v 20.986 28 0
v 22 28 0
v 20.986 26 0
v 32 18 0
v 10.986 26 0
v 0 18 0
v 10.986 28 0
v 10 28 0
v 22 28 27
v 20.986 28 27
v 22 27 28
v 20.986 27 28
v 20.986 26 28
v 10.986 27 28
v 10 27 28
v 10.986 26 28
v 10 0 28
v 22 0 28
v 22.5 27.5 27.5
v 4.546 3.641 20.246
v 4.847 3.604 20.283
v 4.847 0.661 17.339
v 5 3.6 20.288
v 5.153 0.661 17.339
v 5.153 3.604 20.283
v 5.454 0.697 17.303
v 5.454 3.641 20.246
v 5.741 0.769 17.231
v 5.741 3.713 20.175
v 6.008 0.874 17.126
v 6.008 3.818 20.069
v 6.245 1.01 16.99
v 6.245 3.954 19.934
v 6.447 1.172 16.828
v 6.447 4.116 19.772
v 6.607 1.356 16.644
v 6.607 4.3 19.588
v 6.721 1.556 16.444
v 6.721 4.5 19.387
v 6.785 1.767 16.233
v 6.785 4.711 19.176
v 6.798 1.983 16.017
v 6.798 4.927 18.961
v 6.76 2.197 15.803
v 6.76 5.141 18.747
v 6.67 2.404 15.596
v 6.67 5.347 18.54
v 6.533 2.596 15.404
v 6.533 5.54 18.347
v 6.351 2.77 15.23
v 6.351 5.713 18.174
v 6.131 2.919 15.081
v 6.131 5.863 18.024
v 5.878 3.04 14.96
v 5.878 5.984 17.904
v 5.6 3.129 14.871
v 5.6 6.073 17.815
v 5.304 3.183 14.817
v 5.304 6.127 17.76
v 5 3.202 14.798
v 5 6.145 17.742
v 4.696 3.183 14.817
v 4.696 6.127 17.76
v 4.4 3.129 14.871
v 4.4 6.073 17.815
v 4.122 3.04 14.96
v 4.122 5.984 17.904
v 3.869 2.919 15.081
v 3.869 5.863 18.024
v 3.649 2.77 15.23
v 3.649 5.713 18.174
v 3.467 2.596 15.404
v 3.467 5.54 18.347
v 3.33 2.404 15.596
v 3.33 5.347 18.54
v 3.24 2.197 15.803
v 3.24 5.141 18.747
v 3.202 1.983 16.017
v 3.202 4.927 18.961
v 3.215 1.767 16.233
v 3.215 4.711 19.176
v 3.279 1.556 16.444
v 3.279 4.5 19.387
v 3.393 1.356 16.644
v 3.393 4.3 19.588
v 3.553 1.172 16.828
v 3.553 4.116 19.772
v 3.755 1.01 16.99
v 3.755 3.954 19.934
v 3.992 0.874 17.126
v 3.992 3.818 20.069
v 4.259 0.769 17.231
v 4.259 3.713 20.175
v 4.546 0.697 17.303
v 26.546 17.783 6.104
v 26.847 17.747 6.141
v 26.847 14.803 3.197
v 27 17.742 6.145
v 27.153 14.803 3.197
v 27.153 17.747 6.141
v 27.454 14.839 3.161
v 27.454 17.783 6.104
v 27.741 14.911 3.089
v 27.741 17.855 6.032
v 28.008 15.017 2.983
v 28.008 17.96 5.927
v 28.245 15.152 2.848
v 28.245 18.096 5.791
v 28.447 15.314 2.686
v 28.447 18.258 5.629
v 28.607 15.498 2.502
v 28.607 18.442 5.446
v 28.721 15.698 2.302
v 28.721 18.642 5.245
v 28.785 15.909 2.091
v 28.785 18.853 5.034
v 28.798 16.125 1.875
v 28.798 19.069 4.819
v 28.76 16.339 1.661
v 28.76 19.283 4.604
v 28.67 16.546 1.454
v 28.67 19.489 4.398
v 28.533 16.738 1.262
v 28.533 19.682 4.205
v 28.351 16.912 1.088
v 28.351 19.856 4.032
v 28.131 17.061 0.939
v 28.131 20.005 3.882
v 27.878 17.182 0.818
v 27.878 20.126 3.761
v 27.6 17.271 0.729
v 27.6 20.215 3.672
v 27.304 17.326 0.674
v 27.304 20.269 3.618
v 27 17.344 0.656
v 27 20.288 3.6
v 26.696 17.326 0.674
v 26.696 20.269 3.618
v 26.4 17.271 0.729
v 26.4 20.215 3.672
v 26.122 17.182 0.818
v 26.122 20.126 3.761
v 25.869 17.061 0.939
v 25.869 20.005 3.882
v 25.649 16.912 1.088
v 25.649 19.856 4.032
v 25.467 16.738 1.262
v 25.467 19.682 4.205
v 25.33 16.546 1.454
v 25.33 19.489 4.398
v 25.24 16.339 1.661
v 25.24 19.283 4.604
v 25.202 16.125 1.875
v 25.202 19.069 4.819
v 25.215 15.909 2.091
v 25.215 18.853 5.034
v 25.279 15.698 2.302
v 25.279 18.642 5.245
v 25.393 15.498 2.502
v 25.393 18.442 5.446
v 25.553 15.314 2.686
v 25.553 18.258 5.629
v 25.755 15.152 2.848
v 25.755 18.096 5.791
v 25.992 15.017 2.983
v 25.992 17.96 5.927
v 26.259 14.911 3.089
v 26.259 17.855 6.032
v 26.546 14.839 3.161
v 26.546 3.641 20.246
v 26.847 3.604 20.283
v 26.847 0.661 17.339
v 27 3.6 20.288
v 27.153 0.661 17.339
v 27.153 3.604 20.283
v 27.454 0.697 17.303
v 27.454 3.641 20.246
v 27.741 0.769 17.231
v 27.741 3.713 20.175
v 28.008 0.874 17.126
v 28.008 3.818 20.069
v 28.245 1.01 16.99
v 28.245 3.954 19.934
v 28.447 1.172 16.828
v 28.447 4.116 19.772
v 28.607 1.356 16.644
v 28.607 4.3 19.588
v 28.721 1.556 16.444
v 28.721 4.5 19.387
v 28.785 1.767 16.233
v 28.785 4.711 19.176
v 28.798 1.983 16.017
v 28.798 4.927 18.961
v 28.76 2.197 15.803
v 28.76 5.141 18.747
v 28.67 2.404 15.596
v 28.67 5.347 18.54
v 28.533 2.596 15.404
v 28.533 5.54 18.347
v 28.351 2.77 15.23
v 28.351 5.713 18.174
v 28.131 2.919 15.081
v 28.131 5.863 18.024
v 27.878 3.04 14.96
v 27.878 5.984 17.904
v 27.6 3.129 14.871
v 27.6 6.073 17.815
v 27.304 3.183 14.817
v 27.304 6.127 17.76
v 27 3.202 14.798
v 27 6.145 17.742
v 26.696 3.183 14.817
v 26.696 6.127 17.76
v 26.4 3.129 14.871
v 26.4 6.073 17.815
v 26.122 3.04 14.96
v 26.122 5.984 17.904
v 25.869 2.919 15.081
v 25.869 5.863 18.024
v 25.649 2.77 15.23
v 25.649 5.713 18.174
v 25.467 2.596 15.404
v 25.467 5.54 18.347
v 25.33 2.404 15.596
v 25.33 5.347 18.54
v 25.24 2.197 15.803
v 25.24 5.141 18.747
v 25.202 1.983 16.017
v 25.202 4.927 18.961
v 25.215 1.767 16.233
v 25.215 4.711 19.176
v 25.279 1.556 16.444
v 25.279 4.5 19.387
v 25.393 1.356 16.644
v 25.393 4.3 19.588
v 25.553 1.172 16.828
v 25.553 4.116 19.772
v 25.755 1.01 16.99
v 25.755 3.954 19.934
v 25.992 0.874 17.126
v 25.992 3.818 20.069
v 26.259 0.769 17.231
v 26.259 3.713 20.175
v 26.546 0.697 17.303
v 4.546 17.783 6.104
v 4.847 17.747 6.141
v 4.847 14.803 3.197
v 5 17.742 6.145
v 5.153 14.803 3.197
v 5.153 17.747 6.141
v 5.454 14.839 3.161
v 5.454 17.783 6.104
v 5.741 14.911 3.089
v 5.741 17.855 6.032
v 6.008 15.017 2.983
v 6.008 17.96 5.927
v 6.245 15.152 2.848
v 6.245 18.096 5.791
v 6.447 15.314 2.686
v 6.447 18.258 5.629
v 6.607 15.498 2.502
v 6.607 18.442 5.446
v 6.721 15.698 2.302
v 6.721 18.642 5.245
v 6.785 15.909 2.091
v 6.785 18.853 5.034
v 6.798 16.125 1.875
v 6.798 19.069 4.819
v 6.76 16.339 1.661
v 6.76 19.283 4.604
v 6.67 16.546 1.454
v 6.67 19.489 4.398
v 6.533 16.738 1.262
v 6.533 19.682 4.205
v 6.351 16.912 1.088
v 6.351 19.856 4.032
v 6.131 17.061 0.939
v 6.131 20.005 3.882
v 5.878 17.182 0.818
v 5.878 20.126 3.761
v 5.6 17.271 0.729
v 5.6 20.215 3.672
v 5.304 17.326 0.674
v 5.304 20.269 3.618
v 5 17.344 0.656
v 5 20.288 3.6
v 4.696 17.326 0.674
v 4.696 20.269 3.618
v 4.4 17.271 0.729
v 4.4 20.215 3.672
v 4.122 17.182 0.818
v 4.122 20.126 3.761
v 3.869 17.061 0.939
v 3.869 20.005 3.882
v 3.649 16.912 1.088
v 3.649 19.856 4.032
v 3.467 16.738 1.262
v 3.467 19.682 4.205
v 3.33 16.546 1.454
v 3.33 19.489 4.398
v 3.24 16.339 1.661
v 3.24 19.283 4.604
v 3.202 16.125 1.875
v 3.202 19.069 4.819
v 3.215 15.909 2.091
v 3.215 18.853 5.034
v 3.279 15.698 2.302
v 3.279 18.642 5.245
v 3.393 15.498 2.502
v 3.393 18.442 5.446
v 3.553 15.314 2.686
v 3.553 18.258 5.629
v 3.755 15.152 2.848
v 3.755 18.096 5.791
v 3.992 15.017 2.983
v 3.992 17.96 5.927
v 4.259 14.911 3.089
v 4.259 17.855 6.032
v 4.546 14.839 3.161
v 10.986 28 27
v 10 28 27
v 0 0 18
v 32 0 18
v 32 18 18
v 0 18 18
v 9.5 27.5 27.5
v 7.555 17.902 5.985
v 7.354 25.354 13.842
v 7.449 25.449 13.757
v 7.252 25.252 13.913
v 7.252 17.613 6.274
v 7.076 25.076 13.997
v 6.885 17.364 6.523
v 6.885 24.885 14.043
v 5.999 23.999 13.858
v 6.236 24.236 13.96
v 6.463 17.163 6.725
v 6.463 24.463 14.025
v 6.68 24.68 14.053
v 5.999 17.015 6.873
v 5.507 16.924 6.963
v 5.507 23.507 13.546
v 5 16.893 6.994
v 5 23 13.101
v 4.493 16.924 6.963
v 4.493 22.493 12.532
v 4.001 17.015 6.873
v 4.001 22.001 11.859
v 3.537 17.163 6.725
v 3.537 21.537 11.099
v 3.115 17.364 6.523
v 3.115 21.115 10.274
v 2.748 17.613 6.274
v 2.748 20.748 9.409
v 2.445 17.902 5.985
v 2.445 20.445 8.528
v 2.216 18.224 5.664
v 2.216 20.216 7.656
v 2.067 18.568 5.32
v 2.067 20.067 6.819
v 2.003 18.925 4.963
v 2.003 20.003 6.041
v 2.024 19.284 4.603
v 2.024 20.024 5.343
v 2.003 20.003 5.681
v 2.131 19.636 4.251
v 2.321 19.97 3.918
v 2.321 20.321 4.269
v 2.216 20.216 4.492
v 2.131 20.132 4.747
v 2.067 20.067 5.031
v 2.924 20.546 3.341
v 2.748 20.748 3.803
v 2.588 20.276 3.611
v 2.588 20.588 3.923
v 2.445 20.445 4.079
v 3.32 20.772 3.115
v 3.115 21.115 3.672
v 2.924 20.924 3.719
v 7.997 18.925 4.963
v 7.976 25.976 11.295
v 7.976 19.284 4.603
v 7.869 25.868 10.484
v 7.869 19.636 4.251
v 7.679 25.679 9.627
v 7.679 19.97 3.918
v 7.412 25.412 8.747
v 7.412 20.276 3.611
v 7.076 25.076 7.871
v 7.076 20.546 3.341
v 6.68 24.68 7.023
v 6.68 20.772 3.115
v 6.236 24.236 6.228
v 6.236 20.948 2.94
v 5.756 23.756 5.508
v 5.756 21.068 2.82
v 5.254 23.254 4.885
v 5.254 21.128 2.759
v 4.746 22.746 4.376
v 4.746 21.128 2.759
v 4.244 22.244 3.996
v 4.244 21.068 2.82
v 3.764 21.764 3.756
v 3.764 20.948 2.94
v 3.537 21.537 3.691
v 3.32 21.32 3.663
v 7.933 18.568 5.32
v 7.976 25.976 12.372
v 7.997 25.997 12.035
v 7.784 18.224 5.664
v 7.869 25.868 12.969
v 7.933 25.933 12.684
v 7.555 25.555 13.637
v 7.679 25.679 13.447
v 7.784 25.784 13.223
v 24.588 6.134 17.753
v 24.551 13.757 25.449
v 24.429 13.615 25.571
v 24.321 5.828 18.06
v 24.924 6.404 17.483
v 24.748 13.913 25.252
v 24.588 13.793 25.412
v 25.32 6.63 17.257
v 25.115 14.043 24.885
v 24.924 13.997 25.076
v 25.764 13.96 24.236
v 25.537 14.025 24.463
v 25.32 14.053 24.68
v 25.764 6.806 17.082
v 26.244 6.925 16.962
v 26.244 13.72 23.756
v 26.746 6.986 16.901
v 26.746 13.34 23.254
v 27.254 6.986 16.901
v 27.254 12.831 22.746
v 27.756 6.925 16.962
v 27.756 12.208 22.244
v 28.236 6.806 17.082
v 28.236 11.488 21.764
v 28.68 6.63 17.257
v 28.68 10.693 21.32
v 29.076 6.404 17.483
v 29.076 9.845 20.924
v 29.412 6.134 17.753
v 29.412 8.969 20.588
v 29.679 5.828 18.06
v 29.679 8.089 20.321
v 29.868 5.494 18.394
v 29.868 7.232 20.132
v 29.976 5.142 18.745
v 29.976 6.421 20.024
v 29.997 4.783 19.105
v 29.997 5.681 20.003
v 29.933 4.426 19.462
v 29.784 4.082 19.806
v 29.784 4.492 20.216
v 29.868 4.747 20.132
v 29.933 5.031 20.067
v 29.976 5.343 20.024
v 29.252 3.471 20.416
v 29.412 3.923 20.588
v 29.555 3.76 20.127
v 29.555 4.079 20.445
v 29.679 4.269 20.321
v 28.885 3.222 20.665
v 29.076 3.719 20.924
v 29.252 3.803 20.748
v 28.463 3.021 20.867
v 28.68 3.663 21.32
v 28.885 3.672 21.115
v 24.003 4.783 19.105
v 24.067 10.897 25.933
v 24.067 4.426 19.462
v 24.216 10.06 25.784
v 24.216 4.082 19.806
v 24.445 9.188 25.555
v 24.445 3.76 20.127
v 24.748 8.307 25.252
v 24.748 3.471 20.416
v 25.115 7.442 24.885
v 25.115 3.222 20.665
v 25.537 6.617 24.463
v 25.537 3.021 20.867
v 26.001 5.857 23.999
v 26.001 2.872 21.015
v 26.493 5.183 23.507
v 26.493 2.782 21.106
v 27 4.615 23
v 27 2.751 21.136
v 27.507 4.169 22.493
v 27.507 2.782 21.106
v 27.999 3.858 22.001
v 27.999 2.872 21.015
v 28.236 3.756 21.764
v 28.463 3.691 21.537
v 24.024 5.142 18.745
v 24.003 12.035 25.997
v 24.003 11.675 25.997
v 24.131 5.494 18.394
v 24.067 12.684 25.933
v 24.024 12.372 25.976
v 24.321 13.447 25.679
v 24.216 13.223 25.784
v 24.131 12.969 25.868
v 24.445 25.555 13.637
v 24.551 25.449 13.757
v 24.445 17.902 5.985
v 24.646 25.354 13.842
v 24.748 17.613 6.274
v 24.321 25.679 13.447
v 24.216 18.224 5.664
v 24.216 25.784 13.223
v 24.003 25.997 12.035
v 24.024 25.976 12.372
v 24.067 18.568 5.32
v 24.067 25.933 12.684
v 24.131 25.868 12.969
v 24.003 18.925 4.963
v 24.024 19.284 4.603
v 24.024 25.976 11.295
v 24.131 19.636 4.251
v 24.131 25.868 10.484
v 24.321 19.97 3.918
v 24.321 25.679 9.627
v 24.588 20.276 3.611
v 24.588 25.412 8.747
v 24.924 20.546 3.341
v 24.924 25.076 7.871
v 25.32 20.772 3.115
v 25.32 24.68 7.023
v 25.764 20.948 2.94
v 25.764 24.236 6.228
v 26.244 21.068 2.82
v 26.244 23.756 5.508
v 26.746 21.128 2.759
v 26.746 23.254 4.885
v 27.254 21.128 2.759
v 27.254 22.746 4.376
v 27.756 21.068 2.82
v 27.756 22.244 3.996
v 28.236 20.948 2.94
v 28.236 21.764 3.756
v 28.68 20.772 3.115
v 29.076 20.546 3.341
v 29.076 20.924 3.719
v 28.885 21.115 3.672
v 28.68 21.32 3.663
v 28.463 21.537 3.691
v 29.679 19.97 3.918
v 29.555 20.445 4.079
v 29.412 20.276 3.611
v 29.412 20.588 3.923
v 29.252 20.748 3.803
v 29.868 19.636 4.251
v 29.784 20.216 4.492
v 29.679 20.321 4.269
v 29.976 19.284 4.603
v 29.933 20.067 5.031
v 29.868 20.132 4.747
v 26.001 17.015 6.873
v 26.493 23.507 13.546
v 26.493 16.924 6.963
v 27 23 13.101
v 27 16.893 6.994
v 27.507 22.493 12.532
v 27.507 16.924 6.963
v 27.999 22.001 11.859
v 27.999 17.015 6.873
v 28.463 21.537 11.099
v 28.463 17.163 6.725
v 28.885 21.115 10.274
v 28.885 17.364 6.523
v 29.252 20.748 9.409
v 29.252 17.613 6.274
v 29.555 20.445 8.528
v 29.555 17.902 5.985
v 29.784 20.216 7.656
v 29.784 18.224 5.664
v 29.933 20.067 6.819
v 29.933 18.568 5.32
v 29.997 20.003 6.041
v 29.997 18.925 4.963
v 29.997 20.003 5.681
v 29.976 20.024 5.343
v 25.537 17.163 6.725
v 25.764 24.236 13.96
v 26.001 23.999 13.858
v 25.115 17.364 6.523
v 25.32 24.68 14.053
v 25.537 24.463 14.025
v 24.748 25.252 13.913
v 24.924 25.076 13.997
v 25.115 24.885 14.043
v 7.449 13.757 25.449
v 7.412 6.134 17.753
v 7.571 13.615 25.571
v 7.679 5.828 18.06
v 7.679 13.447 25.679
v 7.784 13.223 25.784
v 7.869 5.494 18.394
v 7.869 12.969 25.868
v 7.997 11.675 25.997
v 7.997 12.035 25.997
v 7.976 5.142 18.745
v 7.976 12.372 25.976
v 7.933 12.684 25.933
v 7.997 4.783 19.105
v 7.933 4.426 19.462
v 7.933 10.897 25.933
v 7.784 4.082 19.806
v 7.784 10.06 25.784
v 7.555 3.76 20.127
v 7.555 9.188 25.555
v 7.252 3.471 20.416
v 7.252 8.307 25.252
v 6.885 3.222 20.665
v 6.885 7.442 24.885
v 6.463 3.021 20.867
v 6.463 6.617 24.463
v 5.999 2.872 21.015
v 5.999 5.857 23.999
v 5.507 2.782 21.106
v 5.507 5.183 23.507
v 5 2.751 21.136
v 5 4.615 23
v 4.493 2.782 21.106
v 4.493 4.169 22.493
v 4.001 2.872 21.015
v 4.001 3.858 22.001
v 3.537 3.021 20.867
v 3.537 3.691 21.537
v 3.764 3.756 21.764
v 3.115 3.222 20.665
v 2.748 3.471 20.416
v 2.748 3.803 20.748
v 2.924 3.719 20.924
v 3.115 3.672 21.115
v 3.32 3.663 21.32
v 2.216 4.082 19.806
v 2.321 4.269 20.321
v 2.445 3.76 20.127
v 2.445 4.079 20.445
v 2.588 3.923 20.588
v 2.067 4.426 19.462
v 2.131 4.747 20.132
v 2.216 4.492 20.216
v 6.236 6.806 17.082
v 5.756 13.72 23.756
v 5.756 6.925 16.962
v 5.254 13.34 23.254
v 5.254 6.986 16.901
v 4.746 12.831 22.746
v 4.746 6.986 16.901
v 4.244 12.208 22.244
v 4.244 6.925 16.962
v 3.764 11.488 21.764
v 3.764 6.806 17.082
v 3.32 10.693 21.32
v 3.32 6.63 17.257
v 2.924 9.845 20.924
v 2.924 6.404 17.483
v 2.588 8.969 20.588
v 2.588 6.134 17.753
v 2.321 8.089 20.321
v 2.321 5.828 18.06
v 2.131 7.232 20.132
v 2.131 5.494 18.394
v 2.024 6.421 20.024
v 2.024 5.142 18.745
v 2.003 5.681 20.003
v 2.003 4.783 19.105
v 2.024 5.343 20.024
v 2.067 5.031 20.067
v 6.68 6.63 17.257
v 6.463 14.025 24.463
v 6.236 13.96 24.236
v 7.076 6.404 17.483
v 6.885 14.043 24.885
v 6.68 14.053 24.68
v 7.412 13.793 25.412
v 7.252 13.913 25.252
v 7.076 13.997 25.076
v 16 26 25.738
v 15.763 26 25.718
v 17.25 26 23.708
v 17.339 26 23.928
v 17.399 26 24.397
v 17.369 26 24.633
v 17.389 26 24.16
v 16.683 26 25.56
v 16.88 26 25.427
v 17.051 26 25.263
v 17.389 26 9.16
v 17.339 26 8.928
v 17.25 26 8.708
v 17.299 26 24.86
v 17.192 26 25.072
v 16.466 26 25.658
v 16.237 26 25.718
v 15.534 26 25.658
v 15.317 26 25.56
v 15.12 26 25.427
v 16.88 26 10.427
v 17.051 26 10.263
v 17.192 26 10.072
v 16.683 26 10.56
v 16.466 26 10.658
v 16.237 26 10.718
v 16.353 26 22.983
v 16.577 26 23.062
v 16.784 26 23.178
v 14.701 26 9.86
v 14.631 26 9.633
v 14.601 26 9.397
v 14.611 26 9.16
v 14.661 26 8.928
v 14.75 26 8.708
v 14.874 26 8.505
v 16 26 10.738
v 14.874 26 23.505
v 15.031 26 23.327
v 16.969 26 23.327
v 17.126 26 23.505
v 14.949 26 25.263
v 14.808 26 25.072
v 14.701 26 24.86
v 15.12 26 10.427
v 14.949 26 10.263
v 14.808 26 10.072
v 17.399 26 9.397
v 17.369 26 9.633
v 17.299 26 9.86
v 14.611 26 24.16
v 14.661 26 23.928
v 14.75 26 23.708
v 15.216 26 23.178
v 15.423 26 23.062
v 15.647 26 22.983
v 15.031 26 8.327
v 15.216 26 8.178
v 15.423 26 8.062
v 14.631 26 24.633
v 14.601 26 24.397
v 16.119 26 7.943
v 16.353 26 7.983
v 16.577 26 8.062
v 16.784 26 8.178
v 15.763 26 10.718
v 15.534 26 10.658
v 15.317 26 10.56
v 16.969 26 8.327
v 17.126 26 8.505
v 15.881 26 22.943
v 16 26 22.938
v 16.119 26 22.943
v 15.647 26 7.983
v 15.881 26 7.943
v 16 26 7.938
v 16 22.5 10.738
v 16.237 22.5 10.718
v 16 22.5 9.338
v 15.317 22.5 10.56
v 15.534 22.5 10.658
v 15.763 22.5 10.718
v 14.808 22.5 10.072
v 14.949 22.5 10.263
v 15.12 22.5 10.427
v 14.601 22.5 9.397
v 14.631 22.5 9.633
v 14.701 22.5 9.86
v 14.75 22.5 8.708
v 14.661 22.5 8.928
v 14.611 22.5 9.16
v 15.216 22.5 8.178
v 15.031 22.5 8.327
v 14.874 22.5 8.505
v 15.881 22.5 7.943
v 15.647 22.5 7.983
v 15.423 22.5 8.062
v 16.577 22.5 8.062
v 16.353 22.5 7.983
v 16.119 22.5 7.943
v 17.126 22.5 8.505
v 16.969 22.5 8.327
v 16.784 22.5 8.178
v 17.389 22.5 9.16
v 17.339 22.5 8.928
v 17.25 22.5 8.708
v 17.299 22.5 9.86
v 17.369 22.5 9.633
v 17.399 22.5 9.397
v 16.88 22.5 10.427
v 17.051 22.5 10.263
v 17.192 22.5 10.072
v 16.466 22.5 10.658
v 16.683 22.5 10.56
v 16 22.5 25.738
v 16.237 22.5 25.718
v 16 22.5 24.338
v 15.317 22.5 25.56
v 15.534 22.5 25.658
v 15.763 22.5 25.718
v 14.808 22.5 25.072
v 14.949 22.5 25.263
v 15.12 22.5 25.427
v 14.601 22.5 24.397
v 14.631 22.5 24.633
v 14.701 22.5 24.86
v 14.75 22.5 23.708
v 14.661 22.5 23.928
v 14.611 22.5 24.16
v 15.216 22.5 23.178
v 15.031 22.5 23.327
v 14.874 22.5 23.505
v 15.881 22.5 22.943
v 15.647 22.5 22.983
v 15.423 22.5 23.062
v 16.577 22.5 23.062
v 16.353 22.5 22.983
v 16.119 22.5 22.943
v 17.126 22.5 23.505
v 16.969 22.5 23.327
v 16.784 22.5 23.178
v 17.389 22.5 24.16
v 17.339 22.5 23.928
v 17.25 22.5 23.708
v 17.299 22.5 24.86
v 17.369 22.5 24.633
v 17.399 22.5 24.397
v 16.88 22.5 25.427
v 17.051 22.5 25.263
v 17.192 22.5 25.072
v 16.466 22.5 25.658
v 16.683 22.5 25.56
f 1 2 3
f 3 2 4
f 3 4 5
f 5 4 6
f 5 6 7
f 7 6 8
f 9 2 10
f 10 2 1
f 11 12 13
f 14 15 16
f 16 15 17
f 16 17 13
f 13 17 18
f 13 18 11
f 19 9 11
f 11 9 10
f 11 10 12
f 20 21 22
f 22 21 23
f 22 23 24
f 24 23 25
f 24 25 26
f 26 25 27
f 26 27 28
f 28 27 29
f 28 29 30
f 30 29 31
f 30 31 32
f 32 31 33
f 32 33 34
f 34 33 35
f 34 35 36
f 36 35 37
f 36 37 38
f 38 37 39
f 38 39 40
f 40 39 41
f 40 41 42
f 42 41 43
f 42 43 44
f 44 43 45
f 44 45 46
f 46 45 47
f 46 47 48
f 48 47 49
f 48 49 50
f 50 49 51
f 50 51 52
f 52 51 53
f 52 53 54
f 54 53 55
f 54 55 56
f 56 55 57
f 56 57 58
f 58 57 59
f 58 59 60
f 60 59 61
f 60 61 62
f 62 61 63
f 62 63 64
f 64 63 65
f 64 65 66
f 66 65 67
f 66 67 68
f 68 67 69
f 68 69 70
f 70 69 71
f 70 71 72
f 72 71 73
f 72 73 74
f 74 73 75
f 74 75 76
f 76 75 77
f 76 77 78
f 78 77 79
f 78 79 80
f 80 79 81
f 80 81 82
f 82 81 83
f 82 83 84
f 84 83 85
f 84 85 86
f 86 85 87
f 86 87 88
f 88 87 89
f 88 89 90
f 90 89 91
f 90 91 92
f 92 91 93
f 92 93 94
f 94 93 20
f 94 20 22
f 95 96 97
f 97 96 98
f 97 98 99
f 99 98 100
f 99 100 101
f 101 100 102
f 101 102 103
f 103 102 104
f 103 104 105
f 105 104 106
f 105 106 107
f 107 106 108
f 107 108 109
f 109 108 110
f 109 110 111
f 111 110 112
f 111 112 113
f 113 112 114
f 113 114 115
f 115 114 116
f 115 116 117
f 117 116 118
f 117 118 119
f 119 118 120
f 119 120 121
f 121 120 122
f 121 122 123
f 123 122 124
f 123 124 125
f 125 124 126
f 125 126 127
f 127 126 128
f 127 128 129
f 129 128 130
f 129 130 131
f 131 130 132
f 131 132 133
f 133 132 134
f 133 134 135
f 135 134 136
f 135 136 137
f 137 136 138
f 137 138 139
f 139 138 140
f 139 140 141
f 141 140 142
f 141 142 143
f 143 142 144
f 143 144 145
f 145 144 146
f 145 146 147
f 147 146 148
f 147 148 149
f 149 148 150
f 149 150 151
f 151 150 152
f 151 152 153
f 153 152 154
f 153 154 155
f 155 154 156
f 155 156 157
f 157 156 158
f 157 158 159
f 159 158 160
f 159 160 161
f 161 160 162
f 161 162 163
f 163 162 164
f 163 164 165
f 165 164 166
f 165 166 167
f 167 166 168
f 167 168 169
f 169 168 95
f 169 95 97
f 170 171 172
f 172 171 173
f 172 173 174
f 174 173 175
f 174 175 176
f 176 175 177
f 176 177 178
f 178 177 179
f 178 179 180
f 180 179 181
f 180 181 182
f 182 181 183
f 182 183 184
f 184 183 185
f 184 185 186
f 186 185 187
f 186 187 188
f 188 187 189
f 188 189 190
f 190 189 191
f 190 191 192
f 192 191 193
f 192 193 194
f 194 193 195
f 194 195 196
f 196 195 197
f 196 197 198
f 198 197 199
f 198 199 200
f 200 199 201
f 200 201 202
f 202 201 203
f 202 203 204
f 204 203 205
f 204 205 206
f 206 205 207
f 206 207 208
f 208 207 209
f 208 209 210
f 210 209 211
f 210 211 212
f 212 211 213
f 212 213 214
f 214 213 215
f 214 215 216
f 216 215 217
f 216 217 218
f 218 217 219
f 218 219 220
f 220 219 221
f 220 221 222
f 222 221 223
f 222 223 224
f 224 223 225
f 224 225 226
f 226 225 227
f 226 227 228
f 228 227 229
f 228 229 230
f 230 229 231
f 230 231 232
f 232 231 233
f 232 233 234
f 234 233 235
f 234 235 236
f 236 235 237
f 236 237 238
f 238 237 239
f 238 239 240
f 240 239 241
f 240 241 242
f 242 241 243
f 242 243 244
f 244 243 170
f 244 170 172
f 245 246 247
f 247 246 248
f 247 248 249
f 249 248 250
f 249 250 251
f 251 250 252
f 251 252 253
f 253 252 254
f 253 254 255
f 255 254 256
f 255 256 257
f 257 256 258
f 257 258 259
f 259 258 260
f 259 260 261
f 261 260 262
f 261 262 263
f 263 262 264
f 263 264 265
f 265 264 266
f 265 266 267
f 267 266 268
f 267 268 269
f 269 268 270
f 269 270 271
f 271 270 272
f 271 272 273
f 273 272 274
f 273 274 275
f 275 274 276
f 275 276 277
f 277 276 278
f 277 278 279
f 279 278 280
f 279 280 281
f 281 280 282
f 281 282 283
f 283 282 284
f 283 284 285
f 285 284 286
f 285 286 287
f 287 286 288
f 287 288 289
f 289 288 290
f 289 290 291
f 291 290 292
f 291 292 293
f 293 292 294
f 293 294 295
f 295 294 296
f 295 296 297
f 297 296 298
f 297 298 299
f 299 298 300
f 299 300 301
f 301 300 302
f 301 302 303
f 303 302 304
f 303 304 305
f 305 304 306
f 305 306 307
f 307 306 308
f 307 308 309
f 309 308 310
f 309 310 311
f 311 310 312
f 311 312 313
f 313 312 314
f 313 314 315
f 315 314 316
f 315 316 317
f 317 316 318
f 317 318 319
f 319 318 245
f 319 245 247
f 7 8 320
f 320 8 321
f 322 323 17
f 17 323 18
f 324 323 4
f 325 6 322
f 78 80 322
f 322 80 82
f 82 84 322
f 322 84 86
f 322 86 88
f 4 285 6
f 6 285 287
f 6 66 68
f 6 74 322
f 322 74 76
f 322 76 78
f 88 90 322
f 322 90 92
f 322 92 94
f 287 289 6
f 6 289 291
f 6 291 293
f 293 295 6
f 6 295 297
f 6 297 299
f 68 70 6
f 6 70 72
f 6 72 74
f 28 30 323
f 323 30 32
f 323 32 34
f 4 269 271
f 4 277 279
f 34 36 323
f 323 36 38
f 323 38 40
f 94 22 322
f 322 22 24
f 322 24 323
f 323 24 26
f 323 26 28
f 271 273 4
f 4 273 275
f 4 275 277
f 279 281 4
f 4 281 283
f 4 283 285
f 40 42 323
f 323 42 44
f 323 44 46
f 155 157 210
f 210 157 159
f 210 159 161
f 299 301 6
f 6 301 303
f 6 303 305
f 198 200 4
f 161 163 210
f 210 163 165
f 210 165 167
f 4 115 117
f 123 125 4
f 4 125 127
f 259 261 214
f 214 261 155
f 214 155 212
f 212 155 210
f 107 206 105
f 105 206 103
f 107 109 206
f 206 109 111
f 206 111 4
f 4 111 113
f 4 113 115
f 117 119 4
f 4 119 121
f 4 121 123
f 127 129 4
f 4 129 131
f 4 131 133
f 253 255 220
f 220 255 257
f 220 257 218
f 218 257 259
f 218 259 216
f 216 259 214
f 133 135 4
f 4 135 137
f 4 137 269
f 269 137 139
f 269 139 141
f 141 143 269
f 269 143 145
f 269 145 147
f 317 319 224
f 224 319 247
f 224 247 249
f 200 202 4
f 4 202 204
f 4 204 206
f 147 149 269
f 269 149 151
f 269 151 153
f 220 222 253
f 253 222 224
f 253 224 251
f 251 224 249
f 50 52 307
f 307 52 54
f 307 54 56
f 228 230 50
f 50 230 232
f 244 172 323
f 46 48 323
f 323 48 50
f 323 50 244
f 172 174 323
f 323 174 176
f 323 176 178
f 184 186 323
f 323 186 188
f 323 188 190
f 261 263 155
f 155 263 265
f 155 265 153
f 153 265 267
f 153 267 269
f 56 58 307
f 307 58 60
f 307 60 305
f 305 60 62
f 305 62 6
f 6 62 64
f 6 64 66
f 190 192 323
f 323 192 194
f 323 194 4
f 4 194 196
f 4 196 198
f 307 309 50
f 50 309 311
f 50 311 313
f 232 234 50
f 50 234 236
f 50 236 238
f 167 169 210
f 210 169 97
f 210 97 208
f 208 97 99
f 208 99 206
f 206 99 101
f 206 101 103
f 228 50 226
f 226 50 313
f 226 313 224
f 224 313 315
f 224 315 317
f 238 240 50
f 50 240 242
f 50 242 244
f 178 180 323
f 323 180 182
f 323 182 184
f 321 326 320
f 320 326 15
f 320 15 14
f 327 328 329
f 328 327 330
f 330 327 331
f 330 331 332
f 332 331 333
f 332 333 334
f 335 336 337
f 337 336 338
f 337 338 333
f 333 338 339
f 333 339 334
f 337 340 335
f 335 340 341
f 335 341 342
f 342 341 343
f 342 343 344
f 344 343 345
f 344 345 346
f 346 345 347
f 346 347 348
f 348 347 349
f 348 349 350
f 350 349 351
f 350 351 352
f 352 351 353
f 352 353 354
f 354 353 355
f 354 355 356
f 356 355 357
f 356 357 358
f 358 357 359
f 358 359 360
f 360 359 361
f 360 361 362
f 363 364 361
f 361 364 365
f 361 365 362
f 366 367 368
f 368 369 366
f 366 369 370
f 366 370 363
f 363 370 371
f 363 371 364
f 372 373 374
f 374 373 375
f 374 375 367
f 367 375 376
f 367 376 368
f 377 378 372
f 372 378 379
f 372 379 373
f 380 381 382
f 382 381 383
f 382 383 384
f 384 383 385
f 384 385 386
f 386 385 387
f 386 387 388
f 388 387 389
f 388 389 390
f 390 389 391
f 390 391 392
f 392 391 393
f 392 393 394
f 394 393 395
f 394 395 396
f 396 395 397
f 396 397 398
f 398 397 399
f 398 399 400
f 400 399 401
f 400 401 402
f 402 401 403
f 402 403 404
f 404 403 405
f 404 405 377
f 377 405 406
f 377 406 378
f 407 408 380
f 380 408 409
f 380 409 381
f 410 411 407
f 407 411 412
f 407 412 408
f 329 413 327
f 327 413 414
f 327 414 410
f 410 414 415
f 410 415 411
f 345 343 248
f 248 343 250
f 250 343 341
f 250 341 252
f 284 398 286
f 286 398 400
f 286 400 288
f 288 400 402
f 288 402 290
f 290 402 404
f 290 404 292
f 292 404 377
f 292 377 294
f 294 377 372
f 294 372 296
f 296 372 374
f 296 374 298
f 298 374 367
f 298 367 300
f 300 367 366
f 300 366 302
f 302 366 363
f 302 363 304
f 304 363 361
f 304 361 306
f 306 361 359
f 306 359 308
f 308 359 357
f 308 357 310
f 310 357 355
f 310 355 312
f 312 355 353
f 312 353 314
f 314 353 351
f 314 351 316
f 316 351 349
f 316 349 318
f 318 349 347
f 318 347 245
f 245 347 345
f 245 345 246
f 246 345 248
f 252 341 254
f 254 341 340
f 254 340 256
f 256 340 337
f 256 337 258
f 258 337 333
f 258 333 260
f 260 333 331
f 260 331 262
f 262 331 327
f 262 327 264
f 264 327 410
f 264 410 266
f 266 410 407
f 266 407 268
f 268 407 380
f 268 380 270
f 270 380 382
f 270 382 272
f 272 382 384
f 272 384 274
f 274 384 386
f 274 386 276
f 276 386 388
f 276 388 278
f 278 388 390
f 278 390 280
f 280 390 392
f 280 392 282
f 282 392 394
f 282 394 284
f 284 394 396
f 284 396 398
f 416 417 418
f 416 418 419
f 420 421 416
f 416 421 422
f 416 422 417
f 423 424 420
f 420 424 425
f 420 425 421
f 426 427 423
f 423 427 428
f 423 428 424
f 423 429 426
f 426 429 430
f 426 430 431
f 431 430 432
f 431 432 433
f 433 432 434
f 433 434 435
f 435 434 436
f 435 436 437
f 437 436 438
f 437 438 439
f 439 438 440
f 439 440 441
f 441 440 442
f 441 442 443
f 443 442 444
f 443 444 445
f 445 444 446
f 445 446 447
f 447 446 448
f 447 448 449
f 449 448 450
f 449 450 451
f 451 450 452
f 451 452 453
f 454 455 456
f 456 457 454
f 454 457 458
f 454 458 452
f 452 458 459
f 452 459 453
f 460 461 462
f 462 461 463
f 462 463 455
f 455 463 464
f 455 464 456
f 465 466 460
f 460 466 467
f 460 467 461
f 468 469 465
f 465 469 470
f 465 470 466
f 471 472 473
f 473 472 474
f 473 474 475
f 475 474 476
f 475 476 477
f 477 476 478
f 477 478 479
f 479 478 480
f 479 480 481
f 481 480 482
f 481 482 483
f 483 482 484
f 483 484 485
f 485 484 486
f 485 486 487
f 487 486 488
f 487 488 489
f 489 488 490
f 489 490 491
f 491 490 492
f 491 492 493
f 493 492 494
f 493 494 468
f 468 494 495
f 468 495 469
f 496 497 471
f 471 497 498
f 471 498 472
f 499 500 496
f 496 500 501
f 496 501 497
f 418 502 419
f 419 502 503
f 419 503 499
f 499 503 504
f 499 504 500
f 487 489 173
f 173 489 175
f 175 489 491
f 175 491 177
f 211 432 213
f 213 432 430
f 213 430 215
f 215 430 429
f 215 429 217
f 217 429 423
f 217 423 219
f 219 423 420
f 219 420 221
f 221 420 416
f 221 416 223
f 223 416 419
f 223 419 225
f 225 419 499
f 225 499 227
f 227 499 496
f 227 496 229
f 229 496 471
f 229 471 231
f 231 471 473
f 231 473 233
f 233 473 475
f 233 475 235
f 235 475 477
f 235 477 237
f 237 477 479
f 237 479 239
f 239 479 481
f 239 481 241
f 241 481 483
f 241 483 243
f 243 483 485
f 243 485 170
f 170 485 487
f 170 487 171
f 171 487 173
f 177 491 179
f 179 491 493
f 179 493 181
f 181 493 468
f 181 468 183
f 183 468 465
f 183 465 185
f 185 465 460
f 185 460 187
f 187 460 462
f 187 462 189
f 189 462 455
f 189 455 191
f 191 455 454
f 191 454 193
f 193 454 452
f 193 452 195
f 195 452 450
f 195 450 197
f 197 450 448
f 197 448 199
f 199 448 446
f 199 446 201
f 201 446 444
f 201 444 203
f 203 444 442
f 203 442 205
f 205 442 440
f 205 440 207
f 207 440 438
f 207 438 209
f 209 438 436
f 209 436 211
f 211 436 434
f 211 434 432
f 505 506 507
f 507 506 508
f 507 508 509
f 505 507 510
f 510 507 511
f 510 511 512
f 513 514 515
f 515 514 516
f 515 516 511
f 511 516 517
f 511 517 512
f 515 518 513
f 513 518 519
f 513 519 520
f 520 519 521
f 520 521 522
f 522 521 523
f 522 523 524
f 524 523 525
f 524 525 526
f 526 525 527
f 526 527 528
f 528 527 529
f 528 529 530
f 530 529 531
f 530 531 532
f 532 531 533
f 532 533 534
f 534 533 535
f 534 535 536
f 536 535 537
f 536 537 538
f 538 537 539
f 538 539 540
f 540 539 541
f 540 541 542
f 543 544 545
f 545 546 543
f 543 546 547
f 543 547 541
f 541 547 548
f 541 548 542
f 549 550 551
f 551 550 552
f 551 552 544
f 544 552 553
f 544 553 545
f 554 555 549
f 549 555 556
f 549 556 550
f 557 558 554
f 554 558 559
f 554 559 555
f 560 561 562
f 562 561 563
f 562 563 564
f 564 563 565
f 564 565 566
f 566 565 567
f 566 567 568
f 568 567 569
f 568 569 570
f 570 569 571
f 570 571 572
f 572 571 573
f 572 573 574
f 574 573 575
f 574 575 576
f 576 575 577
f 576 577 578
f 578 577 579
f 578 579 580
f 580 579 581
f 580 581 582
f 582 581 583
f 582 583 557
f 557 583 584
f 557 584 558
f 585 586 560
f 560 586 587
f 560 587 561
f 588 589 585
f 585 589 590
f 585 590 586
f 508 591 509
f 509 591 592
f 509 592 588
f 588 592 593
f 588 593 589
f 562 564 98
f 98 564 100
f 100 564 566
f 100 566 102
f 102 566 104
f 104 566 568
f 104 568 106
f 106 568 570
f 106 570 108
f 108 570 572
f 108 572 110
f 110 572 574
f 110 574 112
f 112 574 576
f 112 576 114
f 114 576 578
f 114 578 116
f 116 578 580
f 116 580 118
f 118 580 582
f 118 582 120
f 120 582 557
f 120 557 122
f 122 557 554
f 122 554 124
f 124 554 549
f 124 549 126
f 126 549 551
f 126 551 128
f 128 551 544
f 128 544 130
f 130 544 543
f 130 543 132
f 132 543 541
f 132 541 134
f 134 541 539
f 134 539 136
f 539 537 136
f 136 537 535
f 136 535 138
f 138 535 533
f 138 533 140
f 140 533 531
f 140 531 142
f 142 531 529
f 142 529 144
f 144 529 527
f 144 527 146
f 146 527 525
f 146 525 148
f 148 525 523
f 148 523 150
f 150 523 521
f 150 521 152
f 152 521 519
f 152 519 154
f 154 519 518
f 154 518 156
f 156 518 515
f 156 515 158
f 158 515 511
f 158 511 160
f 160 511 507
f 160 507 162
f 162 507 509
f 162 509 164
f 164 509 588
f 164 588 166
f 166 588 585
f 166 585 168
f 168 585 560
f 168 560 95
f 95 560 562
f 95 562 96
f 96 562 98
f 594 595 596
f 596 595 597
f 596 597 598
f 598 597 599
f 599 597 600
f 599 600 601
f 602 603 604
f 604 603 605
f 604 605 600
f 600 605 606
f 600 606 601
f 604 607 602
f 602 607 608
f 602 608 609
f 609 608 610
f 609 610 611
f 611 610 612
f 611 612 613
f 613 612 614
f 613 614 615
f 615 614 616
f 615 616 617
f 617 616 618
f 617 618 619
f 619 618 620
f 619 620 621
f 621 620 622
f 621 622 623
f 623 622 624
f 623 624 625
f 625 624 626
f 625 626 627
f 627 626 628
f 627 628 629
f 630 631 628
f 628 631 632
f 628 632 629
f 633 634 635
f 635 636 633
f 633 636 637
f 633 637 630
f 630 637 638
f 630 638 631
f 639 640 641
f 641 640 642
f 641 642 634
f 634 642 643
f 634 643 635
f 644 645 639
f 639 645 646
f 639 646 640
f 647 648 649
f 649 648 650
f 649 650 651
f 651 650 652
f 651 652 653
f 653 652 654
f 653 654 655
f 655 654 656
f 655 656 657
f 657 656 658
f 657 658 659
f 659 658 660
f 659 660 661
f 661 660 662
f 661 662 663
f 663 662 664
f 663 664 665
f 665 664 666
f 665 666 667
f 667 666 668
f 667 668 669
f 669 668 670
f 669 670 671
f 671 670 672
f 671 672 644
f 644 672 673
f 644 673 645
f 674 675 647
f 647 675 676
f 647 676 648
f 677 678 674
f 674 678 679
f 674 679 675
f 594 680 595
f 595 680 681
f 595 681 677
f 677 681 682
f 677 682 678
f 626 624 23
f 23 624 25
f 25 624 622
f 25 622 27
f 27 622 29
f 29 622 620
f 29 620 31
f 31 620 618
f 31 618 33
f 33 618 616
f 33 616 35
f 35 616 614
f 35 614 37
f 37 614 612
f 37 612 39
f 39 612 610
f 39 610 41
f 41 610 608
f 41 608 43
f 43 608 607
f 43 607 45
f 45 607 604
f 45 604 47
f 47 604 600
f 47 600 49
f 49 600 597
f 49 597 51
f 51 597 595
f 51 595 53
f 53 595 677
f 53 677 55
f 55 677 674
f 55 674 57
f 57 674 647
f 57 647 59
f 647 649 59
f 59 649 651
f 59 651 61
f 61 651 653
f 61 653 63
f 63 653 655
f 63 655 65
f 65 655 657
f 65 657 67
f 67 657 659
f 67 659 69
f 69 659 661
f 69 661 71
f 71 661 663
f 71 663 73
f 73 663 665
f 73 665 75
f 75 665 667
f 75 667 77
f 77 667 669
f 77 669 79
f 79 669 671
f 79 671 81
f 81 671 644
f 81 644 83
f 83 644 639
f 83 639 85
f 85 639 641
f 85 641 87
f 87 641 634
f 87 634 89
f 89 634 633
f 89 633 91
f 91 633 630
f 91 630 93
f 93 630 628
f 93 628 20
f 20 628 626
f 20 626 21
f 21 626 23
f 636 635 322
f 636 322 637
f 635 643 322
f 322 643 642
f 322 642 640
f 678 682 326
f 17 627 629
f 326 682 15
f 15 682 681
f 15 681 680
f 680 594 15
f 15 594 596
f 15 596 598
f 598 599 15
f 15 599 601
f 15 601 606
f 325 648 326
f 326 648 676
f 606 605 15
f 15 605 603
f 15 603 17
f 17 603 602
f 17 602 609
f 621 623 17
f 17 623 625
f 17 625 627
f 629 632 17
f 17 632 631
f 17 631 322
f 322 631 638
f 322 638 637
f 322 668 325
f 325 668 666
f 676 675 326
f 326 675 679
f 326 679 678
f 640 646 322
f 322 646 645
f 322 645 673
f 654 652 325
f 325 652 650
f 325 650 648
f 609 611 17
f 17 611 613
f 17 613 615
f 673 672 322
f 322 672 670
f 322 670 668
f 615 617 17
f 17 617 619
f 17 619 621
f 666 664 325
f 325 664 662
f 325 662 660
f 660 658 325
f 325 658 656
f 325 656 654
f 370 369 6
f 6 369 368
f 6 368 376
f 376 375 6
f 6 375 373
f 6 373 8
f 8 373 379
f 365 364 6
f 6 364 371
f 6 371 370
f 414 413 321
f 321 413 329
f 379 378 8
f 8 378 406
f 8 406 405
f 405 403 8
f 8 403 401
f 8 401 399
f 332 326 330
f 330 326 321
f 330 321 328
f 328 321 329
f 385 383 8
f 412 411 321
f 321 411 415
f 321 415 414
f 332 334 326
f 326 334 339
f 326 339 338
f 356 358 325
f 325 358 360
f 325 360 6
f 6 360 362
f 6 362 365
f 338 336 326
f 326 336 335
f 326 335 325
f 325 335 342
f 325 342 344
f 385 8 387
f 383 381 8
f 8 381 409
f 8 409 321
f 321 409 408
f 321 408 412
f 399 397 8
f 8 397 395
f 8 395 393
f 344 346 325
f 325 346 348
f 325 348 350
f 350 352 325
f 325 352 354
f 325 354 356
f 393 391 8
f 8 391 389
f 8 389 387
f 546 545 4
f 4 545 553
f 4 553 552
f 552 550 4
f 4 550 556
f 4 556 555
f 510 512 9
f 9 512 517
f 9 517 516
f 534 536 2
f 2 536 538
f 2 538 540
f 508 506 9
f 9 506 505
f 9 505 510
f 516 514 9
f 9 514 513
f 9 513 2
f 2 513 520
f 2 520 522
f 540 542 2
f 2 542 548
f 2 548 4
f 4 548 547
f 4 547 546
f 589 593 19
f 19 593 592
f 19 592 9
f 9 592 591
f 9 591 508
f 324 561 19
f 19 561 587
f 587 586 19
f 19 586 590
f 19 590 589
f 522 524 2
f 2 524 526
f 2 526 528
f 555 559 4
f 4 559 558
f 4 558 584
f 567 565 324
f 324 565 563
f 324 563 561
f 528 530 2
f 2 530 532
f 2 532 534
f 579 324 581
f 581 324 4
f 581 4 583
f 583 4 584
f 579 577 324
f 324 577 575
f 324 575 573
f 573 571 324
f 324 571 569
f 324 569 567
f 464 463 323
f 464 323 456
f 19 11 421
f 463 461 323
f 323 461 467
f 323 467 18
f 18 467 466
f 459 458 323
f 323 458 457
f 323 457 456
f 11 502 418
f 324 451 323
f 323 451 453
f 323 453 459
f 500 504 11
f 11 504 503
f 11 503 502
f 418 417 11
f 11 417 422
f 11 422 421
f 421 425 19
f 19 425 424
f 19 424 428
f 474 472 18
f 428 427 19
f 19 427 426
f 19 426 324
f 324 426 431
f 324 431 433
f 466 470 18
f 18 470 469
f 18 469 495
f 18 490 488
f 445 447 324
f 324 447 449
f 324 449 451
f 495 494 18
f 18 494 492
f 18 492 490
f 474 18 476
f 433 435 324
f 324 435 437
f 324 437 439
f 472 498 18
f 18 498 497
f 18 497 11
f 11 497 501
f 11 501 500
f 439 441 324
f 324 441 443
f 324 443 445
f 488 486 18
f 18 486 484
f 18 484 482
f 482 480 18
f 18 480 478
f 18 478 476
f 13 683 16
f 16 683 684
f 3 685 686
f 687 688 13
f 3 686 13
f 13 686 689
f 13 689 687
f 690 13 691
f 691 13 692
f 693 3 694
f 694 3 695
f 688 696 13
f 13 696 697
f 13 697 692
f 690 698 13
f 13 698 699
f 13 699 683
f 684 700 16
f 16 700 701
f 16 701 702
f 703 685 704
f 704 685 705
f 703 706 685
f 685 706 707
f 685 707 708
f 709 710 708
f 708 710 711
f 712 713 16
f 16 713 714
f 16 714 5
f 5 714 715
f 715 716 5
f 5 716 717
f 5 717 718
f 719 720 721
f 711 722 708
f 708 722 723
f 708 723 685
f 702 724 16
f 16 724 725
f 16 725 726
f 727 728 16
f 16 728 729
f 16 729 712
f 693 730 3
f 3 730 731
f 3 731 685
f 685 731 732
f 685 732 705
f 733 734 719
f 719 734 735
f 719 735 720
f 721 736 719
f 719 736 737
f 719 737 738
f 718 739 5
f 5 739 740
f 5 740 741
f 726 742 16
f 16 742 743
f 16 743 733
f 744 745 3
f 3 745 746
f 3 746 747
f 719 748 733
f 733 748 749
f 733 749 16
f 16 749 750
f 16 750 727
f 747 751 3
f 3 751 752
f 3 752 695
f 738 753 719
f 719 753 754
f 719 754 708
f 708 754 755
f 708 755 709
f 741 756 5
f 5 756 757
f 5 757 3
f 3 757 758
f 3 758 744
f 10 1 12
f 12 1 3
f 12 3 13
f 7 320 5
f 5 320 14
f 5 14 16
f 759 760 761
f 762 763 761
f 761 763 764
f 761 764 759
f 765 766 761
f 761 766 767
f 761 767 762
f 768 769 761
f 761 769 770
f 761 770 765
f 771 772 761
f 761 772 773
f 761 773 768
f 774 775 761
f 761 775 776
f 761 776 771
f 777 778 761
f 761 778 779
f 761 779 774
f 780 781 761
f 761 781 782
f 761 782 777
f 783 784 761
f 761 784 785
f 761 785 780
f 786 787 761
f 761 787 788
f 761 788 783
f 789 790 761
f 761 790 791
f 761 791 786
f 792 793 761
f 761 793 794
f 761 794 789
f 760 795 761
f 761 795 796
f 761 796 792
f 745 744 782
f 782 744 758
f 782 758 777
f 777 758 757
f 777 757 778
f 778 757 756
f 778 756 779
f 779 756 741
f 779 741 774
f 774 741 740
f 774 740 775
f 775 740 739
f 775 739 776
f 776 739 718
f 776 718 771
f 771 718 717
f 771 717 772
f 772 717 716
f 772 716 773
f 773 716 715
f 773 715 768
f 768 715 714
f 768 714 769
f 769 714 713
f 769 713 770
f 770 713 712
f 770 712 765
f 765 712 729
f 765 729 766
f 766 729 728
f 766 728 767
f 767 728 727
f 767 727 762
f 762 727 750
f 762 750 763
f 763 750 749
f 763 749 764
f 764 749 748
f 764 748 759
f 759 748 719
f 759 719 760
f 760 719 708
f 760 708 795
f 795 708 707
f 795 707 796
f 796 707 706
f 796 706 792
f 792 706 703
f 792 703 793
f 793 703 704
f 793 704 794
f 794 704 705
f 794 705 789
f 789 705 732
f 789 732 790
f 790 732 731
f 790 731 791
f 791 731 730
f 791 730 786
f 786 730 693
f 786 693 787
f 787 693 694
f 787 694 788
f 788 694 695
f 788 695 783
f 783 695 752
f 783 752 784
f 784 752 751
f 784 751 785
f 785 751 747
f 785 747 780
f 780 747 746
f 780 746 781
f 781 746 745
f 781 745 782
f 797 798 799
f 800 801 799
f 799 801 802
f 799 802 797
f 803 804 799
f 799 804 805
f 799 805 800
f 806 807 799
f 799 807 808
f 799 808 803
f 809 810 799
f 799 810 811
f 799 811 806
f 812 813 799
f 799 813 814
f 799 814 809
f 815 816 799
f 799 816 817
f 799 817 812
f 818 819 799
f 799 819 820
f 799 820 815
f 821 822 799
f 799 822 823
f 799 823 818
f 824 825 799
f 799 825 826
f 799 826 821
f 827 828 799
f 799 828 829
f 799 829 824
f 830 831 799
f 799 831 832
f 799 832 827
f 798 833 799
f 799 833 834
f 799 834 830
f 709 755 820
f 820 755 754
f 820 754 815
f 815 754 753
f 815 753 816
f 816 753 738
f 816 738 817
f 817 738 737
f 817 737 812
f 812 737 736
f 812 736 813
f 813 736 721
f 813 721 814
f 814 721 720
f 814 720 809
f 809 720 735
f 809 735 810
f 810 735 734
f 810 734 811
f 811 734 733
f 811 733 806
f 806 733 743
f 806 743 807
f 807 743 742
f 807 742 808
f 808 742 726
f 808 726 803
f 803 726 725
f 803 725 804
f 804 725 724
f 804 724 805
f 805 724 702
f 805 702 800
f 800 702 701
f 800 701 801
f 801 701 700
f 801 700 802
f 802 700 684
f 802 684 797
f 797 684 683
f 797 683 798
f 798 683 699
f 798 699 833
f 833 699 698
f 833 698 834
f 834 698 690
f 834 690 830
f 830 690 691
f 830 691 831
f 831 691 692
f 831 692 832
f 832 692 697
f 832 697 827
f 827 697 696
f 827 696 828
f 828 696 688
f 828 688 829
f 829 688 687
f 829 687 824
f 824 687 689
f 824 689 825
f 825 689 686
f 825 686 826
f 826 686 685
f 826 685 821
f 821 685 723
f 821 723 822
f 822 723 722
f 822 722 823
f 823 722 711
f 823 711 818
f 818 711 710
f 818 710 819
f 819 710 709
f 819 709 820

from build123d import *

# Parameters (mm, degrees)
SKETCH1_W           = 28
SKETCH1_H           = 28
BOSS_EXTRUDE1_DEPTH = 32
CHAMFER1_SIZE       = 18
SKETCH2_R           = 1.4
CUT_EXTRUDE1_DEPTH  = 5.5
CHAMFER2_SIZE       = 1
SKETCH3_R           = 1.8
CUT_EXTRUDE2_DEPTH  = 42.785164832
SKETCH4_R           = 3
CUT_EXTRUDE3_DEPTH  = 22
CHAMFER3_SIZE       = 10
SKETCH5_W           = 10
SKETCH5_H           = 28
CUT_EXTRUDE4_DEPTH  = 2


with BuildPart() as part:
    # Sketch1 → Boss-Extrude1 (new body)
    with BuildSketch(Plane(origin=(0, 0, 0), x_dir=(0, 0, -1), z_dir=(1, 0, 0))):
        with Locations((-14, 14)):
            Rectangle(SKETCH1_W, SKETCH1_H)
    extrude(amount=BOSS_EXTRUDE1_DEPTH)

    # Chamfer1
    chamfer1_edges = [part.edges().sort_by_distance(p)[0] for p in [
        (16, 0, 0),
    ]]
    chamfer(chamfer1_edges, length=CHAMFER1_SIZE)

    # Sketch2 → Cut-Extrude1 (cut)
    with BuildSketch(Plane(origin=(0, 28, 0), x_dir=(1, 0, 0), z_dir=(0, 1, 0))):
        with Locations(Location((16, -9.337953515, 0), (0, 0, 270))):
            Circle(SKETCH2_R)
        with Locations(Location((16, -24.337953515, 0), (0, 0, 270))):
            Circle(SKETCH2_R)
    extrude(amount=-CUT_EXTRUDE1_DEPTH, mode=Mode.SUBTRACT)

    # Chamfer2
    chamfer2_edges = [part.edges().sort_by_distance(p)[0] for p in [
        (16, 28, 28),
    ]]
    chamfer(chamfer2_edges, length=CHAMFER2_SIZE)

    # Sketch3 → Cut-Extrude2 (cut, through all)
    with BuildSketch(Plane(origin=(0, 9, 9), x_dir=(-1, 0, 0), z_dir=(0, -0.7071067811865487, -0.7071067811865465))):
        with Locations(Location((-5, -10, 0), (0, 0, 90))):
            Circle(SKETCH3_R)
        with Locations(Location((-27, -10, 0), (0, 0, 90))):
            Circle(SKETCH3_R)
        with Locations(Location((-27, 10, 0), (0, 0, 90))):
            Circle(SKETCH3_R)
        with Locations(Location((-5, 10, 0), (0, 0, 90))):
            Circle(SKETCH3_R)
    extrude(amount=-CUT_EXTRUDE2_DEPTH, mode=Mode.SUBTRACT)

    # Sketch4 → Cut-Extrude3 (cut)
    with BuildSketch(Plane(origin=(0, 27.5, 27.5), x_dir=(1, 0, 0), z_dir=(0, 0.7071067811865477, 0.7071067811865475))):
        with Locations(Location((5, 10, 0), (0, 0, 270))):
            Circle(SKETCH4_R)
        with Locations(Location((27, 10, 0), (0, 0, 270))):
            Circle(SKETCH4_R)
        with Locations(Location((27, -10, 0), (0, 0, 270))):
            Circle(SKETCH4_R)
        with Locations(Location((5, -10, 0), (0, 0, 270))):
            Circle(SKETCH4_R)
    extrude(amount=-CUT_EXTRUDE3_DEPTH, mode=Mode.SUBTRACT)

    # Chamfer3
    # the kernel refuses this chamfer: 10 mm, written as the material it takes off along each edge
    with BuildSketch(Plane(origin=(0, 28, 52.71682988), x_dir=(-0.027495876610586372, -0.9996219169112968, 0), z_dir=(0, 0, -1)), Plane(origin=(0, -25.71682988, 28), x_dir=(-0.027495876610586372, 0, -0.9996219169112968), z_dir=(0, 1, 0)), Plane(origin=(32, -25.71682988, 28), x_dir=(-0.9996219169112968, 0, 0.027495876610586317), z_dir=(0, 1, 0)), Plane(origin=(32, 28, 52.71682988), x_dir=(-0.9996219169112968, 0.027495876610586317, 0), z_dir=(0, 0, -1))) as chamfer3_piece_1:
        Polygon((CHAMFER3_SIZE * 0.999621916911, -CHAMFER3_SIZE * 0.0274958766106), (-CHAMFER3_SIZE * 0.0274958766106, -CHAMFER3_SIZE * 0.999621916911), (0, 0), align=None)
    extrude(amount=78.433659759, mode=Mode.SUBTRACT)

    # Sketch5 → Cut-Extrude4 (cut)
    with BuildSketch(Plane(origin=(0, 28, 0), x_dir=(1, 0, 0), z_dir=(0, 1, 0))):
        with Locations((15.986268974, -14)):
            Rectangle(SKETCH5_W, SKETCH5_H)
    extrude(amount=-CUT_EXTRUDE4_DEPTH, mode=Mode.SUBTRACT)


solid = part.part
